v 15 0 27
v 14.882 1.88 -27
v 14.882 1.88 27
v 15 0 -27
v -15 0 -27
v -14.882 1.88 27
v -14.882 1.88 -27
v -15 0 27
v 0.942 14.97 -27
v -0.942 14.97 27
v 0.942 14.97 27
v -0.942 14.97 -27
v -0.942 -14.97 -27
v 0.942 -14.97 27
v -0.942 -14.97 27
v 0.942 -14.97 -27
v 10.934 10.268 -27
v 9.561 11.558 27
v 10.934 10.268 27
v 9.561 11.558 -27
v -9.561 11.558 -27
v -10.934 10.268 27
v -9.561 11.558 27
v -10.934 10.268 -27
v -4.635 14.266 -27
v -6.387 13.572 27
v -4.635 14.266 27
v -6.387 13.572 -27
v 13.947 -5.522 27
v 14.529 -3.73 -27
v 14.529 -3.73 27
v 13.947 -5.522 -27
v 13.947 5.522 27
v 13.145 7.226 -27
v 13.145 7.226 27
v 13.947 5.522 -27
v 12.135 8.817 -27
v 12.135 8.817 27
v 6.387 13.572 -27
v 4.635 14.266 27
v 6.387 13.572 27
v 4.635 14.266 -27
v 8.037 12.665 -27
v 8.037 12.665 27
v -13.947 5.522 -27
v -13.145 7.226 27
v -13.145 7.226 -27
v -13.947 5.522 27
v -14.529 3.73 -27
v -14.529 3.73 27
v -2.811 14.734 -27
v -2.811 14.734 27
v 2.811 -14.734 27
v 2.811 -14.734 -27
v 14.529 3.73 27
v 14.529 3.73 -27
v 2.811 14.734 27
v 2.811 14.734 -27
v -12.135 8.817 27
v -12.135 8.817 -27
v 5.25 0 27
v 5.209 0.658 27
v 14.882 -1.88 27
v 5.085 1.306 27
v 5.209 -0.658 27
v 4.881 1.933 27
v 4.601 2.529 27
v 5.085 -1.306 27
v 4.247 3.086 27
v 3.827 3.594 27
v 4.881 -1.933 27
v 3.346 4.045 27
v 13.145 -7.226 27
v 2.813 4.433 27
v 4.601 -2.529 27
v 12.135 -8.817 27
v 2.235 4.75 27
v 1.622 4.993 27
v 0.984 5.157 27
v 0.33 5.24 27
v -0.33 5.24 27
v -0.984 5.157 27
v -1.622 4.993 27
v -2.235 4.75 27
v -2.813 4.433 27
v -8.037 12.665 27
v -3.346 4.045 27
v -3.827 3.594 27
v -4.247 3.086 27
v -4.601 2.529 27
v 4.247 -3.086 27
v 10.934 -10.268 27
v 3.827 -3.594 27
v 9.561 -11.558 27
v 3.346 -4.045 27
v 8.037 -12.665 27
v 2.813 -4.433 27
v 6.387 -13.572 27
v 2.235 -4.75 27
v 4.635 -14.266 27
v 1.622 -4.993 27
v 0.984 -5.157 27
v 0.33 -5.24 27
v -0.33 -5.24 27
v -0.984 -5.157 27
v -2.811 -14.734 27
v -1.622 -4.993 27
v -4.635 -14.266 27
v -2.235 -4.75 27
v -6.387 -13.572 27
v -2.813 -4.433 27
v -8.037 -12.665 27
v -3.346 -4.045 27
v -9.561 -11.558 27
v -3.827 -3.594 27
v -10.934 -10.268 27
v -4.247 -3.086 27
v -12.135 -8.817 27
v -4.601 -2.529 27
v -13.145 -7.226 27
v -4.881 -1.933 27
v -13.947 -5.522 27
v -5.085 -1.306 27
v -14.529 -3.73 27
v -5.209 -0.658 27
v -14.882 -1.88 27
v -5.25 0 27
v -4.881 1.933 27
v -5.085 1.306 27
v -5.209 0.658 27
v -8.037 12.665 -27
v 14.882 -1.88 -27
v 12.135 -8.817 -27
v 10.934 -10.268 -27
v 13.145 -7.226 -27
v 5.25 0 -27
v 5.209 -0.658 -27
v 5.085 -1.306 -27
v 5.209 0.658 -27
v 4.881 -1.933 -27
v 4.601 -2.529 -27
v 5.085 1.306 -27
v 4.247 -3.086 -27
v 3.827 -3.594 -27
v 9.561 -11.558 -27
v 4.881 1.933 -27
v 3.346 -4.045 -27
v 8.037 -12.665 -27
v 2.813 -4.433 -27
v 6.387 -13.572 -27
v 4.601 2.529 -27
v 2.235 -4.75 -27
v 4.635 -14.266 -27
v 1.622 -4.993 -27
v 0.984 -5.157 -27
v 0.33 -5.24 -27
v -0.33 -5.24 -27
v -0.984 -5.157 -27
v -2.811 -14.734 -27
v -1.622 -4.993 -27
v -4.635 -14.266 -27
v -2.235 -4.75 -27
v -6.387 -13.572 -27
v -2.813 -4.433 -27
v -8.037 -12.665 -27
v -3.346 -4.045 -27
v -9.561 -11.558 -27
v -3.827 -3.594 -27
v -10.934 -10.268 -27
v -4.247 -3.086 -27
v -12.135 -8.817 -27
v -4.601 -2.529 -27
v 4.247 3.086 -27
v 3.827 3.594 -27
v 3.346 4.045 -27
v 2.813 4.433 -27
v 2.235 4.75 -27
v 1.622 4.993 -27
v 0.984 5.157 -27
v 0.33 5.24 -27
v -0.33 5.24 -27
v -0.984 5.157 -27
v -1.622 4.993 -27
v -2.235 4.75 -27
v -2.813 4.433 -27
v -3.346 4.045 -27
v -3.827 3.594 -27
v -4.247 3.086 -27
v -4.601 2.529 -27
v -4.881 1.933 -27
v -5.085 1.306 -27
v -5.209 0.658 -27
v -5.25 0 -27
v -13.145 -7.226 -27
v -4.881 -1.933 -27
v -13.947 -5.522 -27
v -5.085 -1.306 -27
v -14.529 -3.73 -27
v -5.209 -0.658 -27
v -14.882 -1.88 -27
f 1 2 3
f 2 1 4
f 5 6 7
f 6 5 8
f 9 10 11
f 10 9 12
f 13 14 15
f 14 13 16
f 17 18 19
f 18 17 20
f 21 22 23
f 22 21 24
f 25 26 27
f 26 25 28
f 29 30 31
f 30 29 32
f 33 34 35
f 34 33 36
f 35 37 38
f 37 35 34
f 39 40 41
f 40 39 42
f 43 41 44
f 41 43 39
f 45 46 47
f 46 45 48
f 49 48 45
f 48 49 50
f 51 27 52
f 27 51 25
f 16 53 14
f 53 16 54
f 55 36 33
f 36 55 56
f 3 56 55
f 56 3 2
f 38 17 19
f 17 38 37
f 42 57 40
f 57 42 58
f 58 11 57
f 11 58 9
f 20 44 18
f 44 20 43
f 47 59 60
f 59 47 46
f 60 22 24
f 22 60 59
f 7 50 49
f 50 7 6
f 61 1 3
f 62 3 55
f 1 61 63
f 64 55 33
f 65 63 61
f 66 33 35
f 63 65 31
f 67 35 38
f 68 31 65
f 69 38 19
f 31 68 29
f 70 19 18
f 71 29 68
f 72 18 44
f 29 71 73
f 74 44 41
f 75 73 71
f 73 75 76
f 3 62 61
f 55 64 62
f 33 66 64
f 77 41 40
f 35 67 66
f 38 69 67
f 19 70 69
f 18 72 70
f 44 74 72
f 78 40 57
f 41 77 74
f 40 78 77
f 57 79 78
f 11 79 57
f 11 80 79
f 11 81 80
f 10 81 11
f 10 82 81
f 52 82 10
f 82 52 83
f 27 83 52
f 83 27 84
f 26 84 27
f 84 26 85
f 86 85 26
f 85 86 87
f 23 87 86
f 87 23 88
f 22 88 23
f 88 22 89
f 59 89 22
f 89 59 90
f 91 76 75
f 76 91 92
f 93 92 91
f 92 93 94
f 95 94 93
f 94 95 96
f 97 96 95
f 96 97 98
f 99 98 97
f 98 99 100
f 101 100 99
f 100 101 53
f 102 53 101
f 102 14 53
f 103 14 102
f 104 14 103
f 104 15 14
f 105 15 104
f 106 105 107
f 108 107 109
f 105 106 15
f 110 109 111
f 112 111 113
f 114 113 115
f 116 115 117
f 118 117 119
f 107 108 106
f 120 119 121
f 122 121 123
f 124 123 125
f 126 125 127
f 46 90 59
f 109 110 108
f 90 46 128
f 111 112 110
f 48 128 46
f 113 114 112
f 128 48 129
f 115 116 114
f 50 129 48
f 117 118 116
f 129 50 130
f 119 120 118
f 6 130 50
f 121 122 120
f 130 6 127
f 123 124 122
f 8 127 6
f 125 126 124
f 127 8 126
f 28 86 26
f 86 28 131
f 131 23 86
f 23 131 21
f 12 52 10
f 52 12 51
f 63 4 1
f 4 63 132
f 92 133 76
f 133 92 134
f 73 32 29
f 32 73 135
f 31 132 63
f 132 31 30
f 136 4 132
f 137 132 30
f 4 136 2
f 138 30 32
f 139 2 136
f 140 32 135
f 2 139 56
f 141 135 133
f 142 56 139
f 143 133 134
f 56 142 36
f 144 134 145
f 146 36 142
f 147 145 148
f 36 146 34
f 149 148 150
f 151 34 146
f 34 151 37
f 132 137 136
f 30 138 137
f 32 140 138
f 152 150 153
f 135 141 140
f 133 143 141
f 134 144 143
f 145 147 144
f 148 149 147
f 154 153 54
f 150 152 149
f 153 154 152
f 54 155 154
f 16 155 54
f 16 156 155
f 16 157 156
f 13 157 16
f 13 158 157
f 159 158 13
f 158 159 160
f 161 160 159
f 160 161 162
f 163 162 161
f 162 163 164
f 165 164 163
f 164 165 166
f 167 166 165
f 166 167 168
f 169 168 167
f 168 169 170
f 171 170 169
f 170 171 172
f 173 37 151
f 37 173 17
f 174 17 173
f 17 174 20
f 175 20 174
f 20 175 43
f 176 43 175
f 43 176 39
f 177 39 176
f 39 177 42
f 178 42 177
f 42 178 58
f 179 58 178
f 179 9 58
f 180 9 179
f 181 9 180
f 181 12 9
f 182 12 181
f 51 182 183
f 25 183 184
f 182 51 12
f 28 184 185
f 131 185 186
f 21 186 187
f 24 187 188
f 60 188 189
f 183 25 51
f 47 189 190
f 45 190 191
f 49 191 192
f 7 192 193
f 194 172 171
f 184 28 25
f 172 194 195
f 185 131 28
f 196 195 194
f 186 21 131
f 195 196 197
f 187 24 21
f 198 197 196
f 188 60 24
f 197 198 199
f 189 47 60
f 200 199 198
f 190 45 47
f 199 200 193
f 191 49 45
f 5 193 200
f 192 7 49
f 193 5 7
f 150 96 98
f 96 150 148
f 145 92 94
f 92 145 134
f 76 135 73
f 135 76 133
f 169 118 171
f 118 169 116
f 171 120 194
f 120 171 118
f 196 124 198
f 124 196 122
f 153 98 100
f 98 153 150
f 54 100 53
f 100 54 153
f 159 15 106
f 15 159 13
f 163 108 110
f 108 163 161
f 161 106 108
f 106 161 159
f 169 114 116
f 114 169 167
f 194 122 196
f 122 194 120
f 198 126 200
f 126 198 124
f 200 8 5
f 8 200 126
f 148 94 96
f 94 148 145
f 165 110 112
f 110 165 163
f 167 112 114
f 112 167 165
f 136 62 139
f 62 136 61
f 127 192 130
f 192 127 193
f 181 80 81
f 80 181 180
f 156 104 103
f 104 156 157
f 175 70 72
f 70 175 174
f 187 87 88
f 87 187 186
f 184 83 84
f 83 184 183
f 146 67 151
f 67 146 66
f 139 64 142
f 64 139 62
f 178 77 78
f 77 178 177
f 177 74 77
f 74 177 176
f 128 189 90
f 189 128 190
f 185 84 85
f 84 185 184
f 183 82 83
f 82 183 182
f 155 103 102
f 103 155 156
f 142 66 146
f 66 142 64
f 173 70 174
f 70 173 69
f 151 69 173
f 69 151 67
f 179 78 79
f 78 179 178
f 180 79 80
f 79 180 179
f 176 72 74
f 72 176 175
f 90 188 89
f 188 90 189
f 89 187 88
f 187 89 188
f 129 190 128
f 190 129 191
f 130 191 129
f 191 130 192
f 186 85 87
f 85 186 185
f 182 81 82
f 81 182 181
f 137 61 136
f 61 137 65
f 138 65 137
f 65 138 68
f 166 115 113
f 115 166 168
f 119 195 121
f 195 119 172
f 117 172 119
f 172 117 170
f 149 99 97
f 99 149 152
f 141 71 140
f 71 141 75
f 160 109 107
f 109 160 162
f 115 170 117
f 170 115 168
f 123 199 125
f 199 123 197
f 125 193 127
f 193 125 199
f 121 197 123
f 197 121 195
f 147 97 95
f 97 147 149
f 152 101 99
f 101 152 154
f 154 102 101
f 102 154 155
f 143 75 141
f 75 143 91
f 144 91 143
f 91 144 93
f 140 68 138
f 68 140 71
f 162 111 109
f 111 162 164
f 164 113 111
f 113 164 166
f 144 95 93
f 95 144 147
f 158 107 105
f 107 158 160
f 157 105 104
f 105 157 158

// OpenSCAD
$fn = 50;


difference() {
	union() {
		translate(v = [0, 0, -27.0000000000]) {
			cylinder(h = 54, r = 15.0000000000);
		}
	}
	union() {
		translate(v = [0, 0, -100.0000000000]) {
			cylinder(h = 200, r = 5.2500000000);
		}
	}
}
